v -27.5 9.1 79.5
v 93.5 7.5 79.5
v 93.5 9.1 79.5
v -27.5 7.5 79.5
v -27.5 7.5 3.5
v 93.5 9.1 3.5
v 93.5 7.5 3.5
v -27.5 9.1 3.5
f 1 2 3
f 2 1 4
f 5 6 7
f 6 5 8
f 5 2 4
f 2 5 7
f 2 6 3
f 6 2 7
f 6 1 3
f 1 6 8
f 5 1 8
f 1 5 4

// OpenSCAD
// file: D:/Projects/assembly-workshop/outputs/Screen_5in_SCR5-G_2026-10-30/checks/geometry.scad
// SCR5-G; mm; FRONT view: X right, Z up, Y into rack. Glass/plate front Y=0.
// Measured values: work/screen-5in/Dimensions.md. Physical fit/strength UNKNOWN.
part="plate";
DROP=0.45; // coupon winner can be substituted here; all three pins use this DROP
LIP=0.8; LIP_ON=true;
LIP_EDGES=[true,true,false,false]; // left,right,bottom,top; Brian: side lips only, cosmetic
FRAME_STEP=1.5; // measured glass-edge inset to metal LCD frame, left/right only
SHIM=0; // moves rear frame seat and plate-boss mating face back
$fn=48;
GCX=33; GCZ=41.5; PW=252; PH=88.8; PT=4;
GW=120.7; GH=77.2; CLEAR=0.2; WW=GW+2*CLEAR; WH=GH+2*CLEAR;
SEAT=13.3+SHIM; FT=3;
SO=[56.45,34]; BTN_X=[45.5,35.5,25.5];
PCB_TOP=38; GAP=0.10; LEAF_T=0.8;
HOLE=[3.4,40.3,44.7];
BX=[GCX-68,GCX+68]; BZ=[10,72];
// DSI connector X extent is unmeasured: conservative assumed 8 mm inward from PCB edge.
DSI=[GCX-60.5,9.1,GCZ-38+30,8,5.25,21];
module xz(y,d){translate([0,y+d,0])rotate([90,0,0])linear_extrude(d)children();}
// rr/rack_slots copied from SCR5-F; same exact slot centres, outline shifted -0.05 Z to centre 44.4.
module rr(w,h,r){hull()for(x=[-w/2+r,w/2-r],z=[-h/2+r,h/2-r])translate([x,z])circle(r=r);}
module rack_slots(){for(x=[-118.2625,118.2625],z=[6.323,38.127,50.773,82.577])translate([x,z])hull()for(dx=[-1.5,1.5])translate([dx,0])circle(d=7);}
module cyl_y(x,y,z,d,h){translate([x,y,z])rotate([-90,0,0])cylinder(d=d,h=h);}
module window_cut(){
  xz(-0.02,4.04)translate([GCX,GCZ])square([WW,WH],center=true);
  // 0.3 x 45-degree chamfer, square corners, front only.
  translate([GCX,0.3,GCZ])rotate([90,0,0])
    linear_extrude(height=0.3,scale=[(WW+0.6)/WW,(WH+0.6)/WH])square([WW,WH],center=true);
}
module lips(){
  // Cosmetic side ledges only; rear frame/standoffs set depth and retain the screen.
  if(LIP_ON)for(i=[0:3])if(LIP_EDGES[i]){
    if(i<2)translate([GCX+(i==0?-WW/2:WW/2-LIP),2.5,GCZ-GH/2+4])cube([LIP,0.8,GH-8]);
    else translate([GCX-GW/2+4,2.5,GCZ+(i==2?-WH/2:WH/2-LIP)])cube([GW-8,0.8,LIP]);
  }
}
// Leaf/nub/bump geometry copied from SCR5-WP-A, translated to this glass centre.
module leaves(){for(x=BTN_X)translate([GCX+x-1.5,0,GCZ]){
  translate([0,0,PCB_TOP+GAP+0.9+0.1])cube([3,11.8,LEAF_T]);
  translate([0,10.2,PCB_TOP+GAP])cube([3,1.4,1.0+LEAF_T/2]);
  translate([0,10.4,PCB_TOP+GAP+1.0+LEAF_T])cube([3,1.0,0.9]);
}}
module plate(){difference(){union(){
  difference(){xz(0,PT)translate([0,PH/2])rr(PW,PH,2.5);window_cut();}
  for(x=BX,z=BZ)cyl_y(x,3.9,z,8,SEAT-3.9);
  leaves(); lips();
 }
 xz(-0.02,4.04)rack_slots();
 for(x=BTN_X)translate([GCX+x-HOLE[0]/2,-0.02,GCZ+HOLE[1]])cube([HOLE[0],SEAT+FT+0.04,HOLE[2]-HOLE[1]]);
 // Printed-in screw pilots (no heat-set OD assumption): nominal M2.5, fit UNKNOWN.
 for(x=BX,z=BZ)cyl_y(x,SEAT-6,z,2.1,6.02);
 // Rear engraving, 0.5 deep, left field.
 xz(3.5,0.52)translate([-75,40])mirror([1,0])text("SCR5-G",size=6,halign="center",font="Liberation Sans:style=Bold");
}}
module frame_blank(){
  // C-shaped perimeter; no material across the board centre / touch FPC.
  xz(SEAT,FT)translate([GCX,GCZ])difference(){square([132,76],center=true);square([116,60],center=true);}
  for(sx=[-1,1],sz=[-1,1])cyl_y(GCX+sx*SO[0],SEAT,GCZ+sz*SO[1],9,FT);
  for(x=BX,z=BZ)hull(){cyl_y(x,SEAT,z,8,FT);cyl_y(GCX+(x<GCX?-62:62),SEAT,z,8,FT);}
}
module dsi_keepout(){translate([DSI[0]-3,DSI[1]-3,DSI[2]-3])cube([DSI[3]+6,DSI[4]+6,DSI[5]+6]);}
module ribbon_route(){
  // Open left/up corridor 18 mm wide; extends past top of plate.
  translate([GCX-84,6.1,GCZ-11])cube([18,24,65]);
  translate([GCX-84,6.1,GCZ-11])cube([32,24,27]);
}
module frame(){difference(){frame_blank();dsi_keepout();ribbon_route();
 for(sx=[-1,1],sz=[-1,1])cyl_y(GCX+sx*SO[0],SEAT-0.02,GCZ+sz*SO[1],2.8,FT+0.04);
 for(x=BX,z=BZ)cyl_y(x,SEAT-0.02,z,2.8,FT+0.04);
}}
// Pin polygon/cap/notch/dot design copied unchanged from SCR5-WP-A.
module pin(d,dots){s=2*d+0.5;difference(){union(){
 translate([-1.5,0,0])rotate([90,0,90])linear_extrude(3)polygon([
 [-s-0.02,40.5],[10.2,40.5],[10.2,41.0],[11.5,41.0],[11.5+2*d,41.0-d],[15,41.0-d],[15,44.5],[-s-0.02,44.5]]);
 translate([-2.5,-s-1.5,39.6])cube([5,1.5,5.8]);
 }for(i=[0:dots-1])translate([(i-(dots-1)/2)*1.4,-s-1.5-0.01,43.5])rotate([-90,0,0])cylinder(d=0.9,h=0.4);}}
module placed_pin(i){translate([GCX+BTN_X[i],0,GCZ])pin(DROP,i+1);}
// Measured layers: cover glass 0.9 + second glass 1.6, metal frame 3.0,
// open gap 2.0, PCB 1.6. Metal frame inset ~1.5 at LEFT/RIGHT only.
// PCB centred under glass and full metal-frame top/bottom extent remain UNKNOWN.
module glass(){translate([GCX-GW/2,0,GCZ-GH/2])cube([GW,2.5,GH]);}
module lcd(){
  translate([GCX-GW/2+FRAME_STEP,2.5,GCZ-GH/2])cube([GW-2*FRAME_STEP,3.0,GH]);
}
module pcb(){translate([GCX-60.5,7.5,GCZ-38])cube([121,1.6,76]);}
module standoffs(){for(sx=[-1,1],sz=[-1,1])difference(){cyl_y(GCX+sx*SO[0],9.1,GCZ+sz*SO[1],5.5,4.2);cyl_y(GCX+sx*SO[0],9.08,GCZ+sz*SO[1],2.5,4.24);}}
module buttons(){for(x=BTN_X){
 translate([GCX+x-3.5,9.1,GCZ+38-3.4])cube([7,3.6,2.4]);
 translate([GCX+x-1.5,9.1,GCZ+37])cube([3,3.6,1]);
}}
module dsi(){translate([DSI[0],DSI[1],DSI[2]])cube([DSI[3],DSI[4],DSI[5]]);}
module touch(){translate([GCX-10,9.1,GCZ-5])cube([20,2,10]);} // lateral extent unmeasured
module dummy(){glass();lcd();pcb();standoffs();buttons();dsi();touch();}
module assembly(){color("gray")plate();color("orange")frame();for(i=[0:2])color("cyan")placed_pin(i);color([0.2,0.3,0.4,0.4])dummy();}
// main file
include <D:/Projects/assembly-workshop/outputs/Screen_5in_SCR5-G_2026-10-30/checks/geometry.scad>
pcb();
